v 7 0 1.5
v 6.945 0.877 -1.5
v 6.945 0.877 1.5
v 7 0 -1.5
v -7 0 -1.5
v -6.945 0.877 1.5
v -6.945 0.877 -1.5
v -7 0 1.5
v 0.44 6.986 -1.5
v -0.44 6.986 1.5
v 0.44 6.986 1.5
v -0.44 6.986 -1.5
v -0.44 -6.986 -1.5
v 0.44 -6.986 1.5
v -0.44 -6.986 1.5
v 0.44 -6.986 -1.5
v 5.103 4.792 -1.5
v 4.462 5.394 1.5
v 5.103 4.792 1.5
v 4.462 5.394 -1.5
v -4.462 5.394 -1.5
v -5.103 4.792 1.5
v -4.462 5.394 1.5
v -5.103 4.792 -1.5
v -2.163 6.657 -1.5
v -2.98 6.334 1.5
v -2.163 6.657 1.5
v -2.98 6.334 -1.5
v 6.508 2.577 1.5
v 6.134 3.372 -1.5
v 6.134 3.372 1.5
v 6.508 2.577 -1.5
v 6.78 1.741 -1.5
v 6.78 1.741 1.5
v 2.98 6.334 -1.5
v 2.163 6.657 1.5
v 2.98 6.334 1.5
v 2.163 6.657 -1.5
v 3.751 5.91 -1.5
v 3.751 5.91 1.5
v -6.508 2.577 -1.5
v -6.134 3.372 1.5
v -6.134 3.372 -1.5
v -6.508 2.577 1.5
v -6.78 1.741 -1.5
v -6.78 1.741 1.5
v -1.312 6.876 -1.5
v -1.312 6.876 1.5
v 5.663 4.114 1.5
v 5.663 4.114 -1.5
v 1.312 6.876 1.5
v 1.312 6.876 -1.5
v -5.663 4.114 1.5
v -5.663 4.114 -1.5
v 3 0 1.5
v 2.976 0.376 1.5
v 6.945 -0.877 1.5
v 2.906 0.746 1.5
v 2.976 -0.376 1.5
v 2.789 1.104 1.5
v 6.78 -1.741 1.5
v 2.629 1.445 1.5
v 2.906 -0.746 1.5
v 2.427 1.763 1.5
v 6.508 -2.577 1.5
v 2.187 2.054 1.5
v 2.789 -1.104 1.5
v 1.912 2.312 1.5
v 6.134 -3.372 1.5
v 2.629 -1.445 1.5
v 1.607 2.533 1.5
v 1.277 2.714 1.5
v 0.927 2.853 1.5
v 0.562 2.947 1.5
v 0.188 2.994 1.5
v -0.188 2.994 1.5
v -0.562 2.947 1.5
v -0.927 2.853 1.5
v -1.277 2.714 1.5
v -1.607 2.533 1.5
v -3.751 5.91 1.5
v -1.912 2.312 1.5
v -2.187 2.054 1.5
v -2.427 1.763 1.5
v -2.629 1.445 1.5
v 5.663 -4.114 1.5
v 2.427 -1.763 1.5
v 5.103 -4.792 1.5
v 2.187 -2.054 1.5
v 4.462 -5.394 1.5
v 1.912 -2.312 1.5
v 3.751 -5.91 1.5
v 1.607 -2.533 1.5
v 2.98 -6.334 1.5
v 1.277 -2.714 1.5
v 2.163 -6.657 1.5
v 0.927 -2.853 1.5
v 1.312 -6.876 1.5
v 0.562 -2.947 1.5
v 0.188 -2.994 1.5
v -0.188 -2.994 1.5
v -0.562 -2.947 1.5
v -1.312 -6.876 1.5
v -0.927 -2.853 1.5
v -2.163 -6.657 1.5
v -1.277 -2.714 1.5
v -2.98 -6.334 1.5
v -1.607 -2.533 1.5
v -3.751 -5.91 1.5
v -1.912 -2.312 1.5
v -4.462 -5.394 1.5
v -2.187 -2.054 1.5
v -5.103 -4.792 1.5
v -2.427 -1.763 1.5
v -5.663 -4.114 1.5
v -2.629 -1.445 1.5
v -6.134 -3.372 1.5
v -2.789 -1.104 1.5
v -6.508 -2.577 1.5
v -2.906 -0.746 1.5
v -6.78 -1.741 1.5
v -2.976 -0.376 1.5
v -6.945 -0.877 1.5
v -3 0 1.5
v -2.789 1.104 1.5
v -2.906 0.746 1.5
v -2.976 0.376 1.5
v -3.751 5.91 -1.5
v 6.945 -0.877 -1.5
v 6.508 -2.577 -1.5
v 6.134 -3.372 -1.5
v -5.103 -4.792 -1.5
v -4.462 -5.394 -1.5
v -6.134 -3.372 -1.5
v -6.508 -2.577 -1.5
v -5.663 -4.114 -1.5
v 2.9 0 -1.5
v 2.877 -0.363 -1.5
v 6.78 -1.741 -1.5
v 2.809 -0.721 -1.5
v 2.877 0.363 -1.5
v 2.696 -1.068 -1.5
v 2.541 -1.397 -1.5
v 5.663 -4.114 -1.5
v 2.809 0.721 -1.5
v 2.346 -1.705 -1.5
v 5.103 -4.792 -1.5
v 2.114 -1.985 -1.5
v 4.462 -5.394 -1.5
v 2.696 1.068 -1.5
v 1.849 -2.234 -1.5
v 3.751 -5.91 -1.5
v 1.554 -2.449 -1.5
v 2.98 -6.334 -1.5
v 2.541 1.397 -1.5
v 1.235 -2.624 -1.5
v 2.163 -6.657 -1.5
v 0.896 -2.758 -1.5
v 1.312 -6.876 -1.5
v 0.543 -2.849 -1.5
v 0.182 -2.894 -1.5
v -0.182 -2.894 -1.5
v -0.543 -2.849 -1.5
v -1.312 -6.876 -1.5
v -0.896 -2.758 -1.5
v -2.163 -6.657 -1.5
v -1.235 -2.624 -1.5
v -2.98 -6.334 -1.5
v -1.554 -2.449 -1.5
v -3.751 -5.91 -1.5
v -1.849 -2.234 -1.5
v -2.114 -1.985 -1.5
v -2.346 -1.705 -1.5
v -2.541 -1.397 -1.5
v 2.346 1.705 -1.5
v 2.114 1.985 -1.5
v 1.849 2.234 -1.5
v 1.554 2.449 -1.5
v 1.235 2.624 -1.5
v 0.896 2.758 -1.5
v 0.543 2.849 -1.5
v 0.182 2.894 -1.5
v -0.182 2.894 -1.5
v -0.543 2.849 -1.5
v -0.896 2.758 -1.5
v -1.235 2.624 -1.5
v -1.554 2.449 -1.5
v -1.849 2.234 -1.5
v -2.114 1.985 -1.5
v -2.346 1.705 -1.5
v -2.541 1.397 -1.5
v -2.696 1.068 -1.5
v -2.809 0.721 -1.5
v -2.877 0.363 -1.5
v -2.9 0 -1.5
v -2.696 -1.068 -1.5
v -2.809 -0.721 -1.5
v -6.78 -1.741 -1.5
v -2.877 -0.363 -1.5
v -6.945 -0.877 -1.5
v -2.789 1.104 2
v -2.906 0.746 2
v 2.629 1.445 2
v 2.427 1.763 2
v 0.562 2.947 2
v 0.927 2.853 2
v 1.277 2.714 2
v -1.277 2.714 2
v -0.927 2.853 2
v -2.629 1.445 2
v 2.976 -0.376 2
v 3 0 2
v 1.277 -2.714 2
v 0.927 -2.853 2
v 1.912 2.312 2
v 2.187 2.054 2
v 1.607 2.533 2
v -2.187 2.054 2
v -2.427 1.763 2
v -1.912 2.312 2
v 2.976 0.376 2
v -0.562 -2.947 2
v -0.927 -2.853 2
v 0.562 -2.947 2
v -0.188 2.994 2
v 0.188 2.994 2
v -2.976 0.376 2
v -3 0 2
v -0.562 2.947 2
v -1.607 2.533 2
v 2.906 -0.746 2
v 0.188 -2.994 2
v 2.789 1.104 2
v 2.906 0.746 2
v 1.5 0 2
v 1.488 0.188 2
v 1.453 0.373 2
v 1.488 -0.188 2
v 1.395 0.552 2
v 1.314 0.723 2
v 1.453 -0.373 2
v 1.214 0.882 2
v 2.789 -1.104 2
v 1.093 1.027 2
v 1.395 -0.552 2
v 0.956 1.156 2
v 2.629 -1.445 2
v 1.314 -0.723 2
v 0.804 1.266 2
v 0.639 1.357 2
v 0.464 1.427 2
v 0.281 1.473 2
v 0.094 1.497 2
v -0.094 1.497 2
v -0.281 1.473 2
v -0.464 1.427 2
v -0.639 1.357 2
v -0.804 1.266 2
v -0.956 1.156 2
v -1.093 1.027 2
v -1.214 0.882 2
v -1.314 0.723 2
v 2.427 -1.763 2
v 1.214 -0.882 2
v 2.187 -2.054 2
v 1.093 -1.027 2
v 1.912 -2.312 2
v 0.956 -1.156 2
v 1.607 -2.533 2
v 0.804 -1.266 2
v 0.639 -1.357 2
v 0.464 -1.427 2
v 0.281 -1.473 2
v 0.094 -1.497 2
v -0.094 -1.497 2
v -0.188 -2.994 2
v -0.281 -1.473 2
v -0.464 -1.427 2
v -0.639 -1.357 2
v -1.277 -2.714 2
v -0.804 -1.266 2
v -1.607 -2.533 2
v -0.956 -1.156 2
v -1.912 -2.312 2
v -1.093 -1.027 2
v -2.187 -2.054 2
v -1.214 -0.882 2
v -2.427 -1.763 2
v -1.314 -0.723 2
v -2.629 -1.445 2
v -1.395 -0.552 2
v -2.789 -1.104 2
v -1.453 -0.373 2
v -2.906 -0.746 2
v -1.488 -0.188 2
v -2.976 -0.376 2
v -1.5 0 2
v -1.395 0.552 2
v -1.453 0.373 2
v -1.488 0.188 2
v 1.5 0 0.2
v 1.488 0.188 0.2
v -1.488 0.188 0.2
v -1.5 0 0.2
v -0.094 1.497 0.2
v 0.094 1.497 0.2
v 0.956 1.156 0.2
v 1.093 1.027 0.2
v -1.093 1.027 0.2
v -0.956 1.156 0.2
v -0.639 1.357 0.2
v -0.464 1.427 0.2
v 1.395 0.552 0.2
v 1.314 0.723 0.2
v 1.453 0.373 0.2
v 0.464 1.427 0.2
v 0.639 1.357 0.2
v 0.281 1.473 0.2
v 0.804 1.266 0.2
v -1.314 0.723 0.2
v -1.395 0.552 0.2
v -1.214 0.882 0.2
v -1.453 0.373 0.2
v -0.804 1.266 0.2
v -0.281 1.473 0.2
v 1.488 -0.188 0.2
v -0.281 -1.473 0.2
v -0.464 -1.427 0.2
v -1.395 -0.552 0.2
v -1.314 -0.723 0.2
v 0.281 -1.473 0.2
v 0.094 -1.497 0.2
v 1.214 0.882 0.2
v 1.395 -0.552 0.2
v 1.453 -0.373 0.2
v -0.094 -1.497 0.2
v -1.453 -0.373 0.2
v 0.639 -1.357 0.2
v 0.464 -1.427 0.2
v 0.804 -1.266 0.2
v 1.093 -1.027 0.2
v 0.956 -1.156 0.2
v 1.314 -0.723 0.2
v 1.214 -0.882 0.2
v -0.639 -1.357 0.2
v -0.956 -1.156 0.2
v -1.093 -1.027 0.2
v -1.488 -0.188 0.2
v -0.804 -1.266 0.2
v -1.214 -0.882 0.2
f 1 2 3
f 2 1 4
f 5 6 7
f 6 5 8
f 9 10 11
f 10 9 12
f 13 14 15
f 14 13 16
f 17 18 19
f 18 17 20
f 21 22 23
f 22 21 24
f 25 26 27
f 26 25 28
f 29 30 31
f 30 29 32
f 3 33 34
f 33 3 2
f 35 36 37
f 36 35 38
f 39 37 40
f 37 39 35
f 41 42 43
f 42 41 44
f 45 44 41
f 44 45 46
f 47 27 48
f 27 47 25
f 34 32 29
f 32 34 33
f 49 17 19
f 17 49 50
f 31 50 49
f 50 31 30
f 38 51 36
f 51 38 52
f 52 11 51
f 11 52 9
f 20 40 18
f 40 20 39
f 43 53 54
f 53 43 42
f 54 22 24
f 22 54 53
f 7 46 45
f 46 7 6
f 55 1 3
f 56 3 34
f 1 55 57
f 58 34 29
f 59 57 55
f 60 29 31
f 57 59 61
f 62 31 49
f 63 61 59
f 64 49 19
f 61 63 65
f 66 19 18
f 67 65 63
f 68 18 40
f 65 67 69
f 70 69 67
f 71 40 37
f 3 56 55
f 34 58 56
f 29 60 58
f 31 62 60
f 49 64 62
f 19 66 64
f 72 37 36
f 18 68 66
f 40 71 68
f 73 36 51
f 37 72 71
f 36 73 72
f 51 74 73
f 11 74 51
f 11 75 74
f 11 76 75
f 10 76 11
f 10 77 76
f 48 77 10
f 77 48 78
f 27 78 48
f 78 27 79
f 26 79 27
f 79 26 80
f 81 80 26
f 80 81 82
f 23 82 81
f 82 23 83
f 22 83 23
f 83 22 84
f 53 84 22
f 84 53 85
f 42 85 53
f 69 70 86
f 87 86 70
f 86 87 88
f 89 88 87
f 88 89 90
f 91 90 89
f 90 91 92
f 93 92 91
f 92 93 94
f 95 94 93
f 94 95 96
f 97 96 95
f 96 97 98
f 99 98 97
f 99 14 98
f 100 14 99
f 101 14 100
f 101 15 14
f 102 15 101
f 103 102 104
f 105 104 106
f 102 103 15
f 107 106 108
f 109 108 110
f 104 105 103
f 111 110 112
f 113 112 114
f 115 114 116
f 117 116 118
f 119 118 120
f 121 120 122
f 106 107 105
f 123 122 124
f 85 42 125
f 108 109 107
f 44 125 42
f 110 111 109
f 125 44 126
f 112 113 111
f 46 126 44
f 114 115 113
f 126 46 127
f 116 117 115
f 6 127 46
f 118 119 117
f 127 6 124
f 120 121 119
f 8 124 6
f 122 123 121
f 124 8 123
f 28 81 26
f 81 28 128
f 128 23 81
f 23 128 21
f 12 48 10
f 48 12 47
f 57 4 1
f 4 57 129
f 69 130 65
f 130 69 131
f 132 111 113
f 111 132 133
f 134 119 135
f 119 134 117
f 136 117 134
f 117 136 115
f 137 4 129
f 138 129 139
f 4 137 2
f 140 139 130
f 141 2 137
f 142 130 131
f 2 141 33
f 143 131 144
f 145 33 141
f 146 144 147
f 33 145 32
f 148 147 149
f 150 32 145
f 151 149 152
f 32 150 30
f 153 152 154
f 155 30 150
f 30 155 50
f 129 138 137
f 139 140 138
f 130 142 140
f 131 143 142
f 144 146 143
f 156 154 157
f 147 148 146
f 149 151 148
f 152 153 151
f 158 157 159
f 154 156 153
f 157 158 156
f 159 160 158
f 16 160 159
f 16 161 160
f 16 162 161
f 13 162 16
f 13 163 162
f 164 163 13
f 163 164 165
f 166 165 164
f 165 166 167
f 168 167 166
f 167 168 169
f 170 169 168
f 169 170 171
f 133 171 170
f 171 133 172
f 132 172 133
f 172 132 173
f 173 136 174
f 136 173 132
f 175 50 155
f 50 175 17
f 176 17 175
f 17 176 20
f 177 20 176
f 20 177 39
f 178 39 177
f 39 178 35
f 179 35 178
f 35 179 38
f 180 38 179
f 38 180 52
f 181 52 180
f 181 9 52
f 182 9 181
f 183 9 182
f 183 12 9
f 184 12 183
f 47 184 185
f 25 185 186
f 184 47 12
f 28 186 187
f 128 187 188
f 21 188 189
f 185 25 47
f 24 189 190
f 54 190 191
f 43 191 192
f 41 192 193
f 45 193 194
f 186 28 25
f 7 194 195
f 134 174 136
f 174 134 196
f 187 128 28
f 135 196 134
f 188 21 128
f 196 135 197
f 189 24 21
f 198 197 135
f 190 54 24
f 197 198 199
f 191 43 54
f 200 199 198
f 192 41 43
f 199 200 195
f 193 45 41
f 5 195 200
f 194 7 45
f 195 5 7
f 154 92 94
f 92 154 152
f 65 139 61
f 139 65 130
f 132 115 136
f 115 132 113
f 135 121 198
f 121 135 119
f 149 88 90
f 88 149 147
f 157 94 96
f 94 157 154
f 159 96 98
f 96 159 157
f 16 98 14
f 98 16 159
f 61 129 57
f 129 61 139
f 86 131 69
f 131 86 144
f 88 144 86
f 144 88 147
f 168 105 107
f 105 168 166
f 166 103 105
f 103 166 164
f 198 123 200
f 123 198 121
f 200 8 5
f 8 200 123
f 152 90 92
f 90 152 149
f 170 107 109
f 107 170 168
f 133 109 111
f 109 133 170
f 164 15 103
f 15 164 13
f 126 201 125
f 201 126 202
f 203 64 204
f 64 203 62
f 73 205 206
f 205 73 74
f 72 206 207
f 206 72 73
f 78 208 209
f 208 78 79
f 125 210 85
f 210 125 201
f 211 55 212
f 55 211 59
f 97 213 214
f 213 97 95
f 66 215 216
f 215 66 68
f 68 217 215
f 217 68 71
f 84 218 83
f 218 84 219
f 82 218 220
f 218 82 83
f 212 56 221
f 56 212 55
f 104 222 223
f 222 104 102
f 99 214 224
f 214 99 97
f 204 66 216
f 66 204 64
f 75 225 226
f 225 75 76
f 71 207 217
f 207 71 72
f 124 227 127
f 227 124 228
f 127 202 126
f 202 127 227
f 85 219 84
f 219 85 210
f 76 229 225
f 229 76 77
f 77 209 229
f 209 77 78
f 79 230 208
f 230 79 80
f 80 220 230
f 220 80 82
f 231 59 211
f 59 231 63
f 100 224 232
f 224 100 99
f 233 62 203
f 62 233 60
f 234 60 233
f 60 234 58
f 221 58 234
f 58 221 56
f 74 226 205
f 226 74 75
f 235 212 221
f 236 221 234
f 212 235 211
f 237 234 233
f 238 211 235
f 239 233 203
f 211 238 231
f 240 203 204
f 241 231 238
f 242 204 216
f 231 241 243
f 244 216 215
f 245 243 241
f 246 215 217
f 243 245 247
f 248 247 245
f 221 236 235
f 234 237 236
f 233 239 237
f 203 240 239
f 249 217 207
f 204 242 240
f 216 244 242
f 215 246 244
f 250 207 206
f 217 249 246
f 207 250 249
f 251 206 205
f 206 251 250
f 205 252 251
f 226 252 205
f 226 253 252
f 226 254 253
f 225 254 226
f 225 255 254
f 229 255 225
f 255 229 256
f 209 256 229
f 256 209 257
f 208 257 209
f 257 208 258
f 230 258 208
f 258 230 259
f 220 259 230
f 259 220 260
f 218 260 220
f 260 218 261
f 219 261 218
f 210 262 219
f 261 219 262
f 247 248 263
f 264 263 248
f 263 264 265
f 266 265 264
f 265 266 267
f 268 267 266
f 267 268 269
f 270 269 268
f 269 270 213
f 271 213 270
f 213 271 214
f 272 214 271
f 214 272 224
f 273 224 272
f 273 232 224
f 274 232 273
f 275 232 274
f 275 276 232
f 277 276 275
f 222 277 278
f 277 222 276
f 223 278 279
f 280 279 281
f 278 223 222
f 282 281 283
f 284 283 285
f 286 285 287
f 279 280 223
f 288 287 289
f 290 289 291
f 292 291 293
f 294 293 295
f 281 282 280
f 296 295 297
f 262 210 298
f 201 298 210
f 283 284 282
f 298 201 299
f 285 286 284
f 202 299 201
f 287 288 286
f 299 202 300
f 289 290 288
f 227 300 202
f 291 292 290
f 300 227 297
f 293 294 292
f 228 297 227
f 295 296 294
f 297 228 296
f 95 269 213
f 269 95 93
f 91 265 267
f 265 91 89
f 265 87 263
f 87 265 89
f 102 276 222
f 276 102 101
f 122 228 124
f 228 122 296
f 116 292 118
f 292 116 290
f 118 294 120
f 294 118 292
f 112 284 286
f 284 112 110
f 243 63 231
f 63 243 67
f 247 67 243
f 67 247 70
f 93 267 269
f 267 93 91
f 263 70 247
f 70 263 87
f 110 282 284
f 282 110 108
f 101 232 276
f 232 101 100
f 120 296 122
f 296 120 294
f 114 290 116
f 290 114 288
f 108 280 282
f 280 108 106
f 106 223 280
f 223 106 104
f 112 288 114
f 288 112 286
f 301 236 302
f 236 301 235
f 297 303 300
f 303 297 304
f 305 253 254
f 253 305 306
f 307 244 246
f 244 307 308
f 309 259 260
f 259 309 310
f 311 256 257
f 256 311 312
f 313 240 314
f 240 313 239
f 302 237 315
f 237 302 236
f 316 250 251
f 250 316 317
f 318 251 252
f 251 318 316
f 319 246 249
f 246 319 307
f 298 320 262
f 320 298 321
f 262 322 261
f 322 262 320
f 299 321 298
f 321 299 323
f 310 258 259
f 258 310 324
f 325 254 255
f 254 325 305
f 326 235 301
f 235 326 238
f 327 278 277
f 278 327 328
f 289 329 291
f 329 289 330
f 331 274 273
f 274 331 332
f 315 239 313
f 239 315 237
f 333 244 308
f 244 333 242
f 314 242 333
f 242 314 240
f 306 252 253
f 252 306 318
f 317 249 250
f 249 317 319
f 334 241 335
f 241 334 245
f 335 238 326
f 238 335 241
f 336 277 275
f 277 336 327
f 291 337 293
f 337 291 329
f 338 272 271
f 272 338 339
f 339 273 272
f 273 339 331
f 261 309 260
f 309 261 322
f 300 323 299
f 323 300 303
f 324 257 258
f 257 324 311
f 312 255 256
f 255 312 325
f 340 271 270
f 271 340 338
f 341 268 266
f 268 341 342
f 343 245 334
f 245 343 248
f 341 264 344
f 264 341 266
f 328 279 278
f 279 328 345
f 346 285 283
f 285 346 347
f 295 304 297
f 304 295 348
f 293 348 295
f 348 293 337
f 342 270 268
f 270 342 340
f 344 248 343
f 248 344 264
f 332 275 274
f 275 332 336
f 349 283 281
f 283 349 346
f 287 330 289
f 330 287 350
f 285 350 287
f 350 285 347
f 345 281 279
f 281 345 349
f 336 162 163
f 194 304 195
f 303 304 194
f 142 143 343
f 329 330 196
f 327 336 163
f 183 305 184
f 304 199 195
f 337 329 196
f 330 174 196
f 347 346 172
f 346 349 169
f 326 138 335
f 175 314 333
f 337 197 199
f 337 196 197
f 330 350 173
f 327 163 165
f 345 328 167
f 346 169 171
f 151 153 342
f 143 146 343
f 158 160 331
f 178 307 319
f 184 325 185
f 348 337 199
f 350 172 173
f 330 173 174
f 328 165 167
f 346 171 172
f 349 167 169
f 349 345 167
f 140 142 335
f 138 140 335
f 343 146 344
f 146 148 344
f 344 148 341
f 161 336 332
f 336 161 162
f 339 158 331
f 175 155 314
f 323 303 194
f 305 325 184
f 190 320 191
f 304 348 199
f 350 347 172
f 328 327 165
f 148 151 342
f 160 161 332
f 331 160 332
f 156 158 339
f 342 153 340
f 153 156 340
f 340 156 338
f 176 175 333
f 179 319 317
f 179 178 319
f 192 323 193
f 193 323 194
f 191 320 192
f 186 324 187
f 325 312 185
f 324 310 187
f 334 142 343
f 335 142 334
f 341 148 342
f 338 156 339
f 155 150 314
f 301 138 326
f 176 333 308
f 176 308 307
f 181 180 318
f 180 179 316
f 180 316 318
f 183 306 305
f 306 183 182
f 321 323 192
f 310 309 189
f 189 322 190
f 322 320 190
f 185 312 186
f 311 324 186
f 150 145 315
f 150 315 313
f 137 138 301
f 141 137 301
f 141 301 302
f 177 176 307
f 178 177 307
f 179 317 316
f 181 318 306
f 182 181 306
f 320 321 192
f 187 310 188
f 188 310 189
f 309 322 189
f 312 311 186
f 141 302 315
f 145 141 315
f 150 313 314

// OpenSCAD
$fn = 50;


difference() {
	union() {
		translate(v = [0, 0, -1.5000000000]) {
			rotate(a = [0, 0, 0]) {
				cylinder(h = 3, r = 7.0000000000);
			}
		}
		translate(v = [0, 0, -1.5000000000]) {
			rotate(a = [0, 0, 0]) {
				cylinder(h = 3.5000000000, r = 3.0000000000);
			}
		}
	}
	union() {
		translate(v = [0, 0, -125.0000000000]) {
			rotate(a = [0, 0, 0]) {
				cylinder(h = 250, r = 1.5000000000);
			}
		}
		#translate(v = [0, 0, 0.2000000000]) {
			rotate(a = [0, 180, 0]) {
				cylinder(h = 1.7000000000, r1 = 1.5000000000, r2 = 2.9000000000);
			}
		}
		#translate(v = [0, 0, 2.0000000000]) {
			rotate(a = [0, 180, 0]) {
				cylinder(h = 3.5000000000, r = 1.5000000000);
			}
		}
	}
}
